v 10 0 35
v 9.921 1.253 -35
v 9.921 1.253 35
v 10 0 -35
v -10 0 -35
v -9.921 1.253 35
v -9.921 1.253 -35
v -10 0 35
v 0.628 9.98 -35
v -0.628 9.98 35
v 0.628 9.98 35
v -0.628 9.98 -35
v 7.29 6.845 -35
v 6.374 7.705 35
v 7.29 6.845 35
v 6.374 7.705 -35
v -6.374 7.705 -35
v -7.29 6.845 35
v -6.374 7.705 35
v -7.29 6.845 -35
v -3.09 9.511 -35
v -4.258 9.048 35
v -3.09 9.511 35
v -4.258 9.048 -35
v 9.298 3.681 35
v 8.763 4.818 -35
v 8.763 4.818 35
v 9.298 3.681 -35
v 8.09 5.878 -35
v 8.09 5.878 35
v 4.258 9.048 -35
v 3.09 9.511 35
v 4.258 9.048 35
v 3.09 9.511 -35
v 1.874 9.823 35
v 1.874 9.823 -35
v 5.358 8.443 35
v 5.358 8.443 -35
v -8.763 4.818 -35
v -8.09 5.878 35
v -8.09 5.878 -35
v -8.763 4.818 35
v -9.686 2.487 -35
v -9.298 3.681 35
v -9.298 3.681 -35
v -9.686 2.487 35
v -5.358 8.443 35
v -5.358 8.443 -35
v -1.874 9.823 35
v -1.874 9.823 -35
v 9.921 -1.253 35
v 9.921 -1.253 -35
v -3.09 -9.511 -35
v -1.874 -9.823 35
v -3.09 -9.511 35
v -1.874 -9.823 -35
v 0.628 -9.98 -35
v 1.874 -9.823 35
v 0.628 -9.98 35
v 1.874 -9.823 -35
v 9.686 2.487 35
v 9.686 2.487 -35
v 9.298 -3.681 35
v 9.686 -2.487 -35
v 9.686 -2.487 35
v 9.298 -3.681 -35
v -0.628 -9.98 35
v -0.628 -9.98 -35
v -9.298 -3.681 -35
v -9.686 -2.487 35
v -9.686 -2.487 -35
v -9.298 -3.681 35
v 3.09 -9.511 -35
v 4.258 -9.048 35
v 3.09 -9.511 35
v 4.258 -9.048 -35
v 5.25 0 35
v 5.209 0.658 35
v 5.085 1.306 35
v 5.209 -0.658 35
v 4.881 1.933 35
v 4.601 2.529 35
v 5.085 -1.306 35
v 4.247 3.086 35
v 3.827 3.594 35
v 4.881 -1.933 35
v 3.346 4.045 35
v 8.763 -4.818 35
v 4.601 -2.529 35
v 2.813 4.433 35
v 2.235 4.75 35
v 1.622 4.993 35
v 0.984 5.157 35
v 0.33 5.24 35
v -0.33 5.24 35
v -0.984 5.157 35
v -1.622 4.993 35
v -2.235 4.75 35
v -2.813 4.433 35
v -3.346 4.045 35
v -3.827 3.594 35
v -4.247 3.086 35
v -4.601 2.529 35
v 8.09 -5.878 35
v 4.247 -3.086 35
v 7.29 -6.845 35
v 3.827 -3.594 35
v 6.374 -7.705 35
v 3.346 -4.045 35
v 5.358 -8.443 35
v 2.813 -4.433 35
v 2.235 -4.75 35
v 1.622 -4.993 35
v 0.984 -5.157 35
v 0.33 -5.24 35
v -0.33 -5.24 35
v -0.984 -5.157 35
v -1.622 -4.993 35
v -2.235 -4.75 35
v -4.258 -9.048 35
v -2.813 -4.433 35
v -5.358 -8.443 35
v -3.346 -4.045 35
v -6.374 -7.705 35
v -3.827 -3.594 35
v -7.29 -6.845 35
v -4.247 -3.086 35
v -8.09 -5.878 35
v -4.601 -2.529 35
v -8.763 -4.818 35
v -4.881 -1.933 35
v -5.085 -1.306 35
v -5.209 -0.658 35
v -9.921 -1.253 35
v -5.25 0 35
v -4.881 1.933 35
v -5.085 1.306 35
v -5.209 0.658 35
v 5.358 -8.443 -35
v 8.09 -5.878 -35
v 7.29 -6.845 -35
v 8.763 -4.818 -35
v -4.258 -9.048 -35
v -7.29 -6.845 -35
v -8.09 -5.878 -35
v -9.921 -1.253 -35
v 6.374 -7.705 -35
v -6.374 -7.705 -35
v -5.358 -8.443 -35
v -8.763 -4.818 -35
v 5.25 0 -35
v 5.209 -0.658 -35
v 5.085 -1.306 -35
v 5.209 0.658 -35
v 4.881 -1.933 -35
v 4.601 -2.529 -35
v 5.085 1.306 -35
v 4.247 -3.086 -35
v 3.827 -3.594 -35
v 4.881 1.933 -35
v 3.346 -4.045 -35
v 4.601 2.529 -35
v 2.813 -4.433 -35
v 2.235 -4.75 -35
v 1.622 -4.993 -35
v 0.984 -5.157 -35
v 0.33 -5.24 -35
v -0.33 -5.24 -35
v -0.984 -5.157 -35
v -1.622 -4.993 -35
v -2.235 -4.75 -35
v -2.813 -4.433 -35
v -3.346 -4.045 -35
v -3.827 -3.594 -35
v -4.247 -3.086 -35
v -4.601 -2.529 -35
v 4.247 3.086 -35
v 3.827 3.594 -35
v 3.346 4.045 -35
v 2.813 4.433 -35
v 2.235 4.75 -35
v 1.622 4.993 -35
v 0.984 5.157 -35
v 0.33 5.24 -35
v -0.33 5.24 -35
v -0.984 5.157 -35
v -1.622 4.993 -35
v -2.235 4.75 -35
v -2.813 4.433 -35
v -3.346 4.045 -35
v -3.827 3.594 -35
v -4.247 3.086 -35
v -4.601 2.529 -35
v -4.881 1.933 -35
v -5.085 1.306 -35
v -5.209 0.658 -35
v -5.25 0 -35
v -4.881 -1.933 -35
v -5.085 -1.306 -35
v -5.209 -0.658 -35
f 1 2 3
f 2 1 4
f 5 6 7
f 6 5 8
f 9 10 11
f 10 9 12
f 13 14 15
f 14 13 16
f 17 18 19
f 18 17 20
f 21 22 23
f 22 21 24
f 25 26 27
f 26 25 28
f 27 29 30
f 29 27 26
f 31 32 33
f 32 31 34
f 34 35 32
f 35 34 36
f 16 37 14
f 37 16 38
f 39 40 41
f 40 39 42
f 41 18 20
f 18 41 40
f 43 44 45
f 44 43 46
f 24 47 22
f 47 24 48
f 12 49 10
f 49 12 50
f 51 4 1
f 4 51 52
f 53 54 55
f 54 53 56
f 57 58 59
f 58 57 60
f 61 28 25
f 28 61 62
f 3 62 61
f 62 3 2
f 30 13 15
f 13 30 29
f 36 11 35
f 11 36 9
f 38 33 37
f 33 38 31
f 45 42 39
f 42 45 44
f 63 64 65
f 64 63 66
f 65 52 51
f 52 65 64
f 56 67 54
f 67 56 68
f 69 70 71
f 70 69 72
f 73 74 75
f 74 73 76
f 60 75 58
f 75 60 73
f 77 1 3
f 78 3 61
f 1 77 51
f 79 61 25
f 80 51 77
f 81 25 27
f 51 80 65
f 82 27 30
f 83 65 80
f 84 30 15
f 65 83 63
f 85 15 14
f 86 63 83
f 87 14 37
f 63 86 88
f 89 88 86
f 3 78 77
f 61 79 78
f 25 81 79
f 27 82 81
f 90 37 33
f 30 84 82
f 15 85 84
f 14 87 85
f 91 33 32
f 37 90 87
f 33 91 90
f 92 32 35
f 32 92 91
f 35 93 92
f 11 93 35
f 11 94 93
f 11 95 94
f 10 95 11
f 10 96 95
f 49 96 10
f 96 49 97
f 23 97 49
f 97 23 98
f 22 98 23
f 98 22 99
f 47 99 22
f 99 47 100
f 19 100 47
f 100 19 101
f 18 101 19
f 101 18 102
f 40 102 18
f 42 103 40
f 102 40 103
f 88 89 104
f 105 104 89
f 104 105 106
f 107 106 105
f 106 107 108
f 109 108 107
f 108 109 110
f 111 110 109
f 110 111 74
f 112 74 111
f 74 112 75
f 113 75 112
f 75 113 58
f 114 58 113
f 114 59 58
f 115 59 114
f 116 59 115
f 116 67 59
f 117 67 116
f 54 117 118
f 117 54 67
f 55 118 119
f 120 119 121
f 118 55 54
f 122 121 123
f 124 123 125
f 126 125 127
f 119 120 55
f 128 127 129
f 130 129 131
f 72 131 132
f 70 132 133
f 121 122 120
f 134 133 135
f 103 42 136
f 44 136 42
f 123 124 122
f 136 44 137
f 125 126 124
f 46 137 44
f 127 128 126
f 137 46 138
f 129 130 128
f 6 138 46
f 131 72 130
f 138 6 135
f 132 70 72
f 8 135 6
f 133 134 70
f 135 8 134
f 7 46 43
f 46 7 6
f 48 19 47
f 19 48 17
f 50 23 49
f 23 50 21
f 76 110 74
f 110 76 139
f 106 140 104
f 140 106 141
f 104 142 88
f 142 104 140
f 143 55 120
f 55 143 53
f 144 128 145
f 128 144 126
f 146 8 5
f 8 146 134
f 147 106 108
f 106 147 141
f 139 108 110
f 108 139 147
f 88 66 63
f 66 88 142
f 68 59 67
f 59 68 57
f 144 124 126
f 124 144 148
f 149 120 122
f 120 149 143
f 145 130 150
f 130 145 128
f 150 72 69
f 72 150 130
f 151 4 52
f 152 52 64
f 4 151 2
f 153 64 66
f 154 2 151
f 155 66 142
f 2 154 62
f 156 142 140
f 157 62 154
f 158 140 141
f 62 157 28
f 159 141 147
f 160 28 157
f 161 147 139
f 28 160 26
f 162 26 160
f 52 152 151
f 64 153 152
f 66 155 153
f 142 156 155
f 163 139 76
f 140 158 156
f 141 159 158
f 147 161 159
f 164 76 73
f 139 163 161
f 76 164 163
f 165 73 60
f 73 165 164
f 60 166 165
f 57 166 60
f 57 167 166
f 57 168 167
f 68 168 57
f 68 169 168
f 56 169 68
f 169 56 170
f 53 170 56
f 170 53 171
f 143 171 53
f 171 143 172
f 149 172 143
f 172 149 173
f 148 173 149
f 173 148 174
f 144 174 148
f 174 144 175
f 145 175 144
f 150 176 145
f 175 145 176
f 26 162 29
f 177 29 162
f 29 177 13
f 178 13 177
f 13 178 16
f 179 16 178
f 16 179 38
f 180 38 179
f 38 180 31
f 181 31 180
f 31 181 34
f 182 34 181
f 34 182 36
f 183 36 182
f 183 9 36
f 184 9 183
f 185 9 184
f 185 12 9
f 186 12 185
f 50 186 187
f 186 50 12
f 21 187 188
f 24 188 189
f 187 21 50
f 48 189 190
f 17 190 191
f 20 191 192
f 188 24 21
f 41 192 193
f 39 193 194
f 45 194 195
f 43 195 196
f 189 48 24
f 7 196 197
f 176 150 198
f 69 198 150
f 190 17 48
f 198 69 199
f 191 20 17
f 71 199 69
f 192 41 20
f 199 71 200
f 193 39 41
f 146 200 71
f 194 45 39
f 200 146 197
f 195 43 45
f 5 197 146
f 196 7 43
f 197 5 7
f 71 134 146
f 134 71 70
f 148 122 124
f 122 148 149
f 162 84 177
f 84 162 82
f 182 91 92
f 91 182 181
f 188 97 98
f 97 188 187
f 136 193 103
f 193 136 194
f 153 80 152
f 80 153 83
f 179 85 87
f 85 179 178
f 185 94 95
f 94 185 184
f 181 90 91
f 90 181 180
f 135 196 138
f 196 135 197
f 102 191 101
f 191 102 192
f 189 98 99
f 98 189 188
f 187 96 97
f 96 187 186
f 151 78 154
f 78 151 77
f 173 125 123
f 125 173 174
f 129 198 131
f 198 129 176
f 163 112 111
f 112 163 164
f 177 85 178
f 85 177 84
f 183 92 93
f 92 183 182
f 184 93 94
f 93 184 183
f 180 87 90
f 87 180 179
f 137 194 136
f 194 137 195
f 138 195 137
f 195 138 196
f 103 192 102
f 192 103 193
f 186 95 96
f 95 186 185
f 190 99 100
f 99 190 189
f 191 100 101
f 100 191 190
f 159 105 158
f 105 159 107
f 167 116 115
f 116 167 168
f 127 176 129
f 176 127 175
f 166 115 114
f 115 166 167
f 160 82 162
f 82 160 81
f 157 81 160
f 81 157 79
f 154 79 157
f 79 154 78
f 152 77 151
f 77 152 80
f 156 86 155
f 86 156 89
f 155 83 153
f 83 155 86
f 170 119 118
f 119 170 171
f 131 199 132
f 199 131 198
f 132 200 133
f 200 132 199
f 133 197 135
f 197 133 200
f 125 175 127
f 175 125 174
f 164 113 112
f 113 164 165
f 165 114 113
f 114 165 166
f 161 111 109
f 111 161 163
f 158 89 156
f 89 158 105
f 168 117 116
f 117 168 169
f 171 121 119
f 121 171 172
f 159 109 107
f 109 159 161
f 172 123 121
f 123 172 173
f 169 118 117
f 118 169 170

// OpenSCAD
$fn = 50;


difference() {
	union() {
		translate(v = [0, 0, -35.0000000000]) {
			cylinder(h = 70, r = 10.0000000000);
		}
	}
	union() {
		translate(v = [0, 0, -100.0000000000]) {
			cylinder(h = 200, r = 5.2500000000);
		}
	}
}
